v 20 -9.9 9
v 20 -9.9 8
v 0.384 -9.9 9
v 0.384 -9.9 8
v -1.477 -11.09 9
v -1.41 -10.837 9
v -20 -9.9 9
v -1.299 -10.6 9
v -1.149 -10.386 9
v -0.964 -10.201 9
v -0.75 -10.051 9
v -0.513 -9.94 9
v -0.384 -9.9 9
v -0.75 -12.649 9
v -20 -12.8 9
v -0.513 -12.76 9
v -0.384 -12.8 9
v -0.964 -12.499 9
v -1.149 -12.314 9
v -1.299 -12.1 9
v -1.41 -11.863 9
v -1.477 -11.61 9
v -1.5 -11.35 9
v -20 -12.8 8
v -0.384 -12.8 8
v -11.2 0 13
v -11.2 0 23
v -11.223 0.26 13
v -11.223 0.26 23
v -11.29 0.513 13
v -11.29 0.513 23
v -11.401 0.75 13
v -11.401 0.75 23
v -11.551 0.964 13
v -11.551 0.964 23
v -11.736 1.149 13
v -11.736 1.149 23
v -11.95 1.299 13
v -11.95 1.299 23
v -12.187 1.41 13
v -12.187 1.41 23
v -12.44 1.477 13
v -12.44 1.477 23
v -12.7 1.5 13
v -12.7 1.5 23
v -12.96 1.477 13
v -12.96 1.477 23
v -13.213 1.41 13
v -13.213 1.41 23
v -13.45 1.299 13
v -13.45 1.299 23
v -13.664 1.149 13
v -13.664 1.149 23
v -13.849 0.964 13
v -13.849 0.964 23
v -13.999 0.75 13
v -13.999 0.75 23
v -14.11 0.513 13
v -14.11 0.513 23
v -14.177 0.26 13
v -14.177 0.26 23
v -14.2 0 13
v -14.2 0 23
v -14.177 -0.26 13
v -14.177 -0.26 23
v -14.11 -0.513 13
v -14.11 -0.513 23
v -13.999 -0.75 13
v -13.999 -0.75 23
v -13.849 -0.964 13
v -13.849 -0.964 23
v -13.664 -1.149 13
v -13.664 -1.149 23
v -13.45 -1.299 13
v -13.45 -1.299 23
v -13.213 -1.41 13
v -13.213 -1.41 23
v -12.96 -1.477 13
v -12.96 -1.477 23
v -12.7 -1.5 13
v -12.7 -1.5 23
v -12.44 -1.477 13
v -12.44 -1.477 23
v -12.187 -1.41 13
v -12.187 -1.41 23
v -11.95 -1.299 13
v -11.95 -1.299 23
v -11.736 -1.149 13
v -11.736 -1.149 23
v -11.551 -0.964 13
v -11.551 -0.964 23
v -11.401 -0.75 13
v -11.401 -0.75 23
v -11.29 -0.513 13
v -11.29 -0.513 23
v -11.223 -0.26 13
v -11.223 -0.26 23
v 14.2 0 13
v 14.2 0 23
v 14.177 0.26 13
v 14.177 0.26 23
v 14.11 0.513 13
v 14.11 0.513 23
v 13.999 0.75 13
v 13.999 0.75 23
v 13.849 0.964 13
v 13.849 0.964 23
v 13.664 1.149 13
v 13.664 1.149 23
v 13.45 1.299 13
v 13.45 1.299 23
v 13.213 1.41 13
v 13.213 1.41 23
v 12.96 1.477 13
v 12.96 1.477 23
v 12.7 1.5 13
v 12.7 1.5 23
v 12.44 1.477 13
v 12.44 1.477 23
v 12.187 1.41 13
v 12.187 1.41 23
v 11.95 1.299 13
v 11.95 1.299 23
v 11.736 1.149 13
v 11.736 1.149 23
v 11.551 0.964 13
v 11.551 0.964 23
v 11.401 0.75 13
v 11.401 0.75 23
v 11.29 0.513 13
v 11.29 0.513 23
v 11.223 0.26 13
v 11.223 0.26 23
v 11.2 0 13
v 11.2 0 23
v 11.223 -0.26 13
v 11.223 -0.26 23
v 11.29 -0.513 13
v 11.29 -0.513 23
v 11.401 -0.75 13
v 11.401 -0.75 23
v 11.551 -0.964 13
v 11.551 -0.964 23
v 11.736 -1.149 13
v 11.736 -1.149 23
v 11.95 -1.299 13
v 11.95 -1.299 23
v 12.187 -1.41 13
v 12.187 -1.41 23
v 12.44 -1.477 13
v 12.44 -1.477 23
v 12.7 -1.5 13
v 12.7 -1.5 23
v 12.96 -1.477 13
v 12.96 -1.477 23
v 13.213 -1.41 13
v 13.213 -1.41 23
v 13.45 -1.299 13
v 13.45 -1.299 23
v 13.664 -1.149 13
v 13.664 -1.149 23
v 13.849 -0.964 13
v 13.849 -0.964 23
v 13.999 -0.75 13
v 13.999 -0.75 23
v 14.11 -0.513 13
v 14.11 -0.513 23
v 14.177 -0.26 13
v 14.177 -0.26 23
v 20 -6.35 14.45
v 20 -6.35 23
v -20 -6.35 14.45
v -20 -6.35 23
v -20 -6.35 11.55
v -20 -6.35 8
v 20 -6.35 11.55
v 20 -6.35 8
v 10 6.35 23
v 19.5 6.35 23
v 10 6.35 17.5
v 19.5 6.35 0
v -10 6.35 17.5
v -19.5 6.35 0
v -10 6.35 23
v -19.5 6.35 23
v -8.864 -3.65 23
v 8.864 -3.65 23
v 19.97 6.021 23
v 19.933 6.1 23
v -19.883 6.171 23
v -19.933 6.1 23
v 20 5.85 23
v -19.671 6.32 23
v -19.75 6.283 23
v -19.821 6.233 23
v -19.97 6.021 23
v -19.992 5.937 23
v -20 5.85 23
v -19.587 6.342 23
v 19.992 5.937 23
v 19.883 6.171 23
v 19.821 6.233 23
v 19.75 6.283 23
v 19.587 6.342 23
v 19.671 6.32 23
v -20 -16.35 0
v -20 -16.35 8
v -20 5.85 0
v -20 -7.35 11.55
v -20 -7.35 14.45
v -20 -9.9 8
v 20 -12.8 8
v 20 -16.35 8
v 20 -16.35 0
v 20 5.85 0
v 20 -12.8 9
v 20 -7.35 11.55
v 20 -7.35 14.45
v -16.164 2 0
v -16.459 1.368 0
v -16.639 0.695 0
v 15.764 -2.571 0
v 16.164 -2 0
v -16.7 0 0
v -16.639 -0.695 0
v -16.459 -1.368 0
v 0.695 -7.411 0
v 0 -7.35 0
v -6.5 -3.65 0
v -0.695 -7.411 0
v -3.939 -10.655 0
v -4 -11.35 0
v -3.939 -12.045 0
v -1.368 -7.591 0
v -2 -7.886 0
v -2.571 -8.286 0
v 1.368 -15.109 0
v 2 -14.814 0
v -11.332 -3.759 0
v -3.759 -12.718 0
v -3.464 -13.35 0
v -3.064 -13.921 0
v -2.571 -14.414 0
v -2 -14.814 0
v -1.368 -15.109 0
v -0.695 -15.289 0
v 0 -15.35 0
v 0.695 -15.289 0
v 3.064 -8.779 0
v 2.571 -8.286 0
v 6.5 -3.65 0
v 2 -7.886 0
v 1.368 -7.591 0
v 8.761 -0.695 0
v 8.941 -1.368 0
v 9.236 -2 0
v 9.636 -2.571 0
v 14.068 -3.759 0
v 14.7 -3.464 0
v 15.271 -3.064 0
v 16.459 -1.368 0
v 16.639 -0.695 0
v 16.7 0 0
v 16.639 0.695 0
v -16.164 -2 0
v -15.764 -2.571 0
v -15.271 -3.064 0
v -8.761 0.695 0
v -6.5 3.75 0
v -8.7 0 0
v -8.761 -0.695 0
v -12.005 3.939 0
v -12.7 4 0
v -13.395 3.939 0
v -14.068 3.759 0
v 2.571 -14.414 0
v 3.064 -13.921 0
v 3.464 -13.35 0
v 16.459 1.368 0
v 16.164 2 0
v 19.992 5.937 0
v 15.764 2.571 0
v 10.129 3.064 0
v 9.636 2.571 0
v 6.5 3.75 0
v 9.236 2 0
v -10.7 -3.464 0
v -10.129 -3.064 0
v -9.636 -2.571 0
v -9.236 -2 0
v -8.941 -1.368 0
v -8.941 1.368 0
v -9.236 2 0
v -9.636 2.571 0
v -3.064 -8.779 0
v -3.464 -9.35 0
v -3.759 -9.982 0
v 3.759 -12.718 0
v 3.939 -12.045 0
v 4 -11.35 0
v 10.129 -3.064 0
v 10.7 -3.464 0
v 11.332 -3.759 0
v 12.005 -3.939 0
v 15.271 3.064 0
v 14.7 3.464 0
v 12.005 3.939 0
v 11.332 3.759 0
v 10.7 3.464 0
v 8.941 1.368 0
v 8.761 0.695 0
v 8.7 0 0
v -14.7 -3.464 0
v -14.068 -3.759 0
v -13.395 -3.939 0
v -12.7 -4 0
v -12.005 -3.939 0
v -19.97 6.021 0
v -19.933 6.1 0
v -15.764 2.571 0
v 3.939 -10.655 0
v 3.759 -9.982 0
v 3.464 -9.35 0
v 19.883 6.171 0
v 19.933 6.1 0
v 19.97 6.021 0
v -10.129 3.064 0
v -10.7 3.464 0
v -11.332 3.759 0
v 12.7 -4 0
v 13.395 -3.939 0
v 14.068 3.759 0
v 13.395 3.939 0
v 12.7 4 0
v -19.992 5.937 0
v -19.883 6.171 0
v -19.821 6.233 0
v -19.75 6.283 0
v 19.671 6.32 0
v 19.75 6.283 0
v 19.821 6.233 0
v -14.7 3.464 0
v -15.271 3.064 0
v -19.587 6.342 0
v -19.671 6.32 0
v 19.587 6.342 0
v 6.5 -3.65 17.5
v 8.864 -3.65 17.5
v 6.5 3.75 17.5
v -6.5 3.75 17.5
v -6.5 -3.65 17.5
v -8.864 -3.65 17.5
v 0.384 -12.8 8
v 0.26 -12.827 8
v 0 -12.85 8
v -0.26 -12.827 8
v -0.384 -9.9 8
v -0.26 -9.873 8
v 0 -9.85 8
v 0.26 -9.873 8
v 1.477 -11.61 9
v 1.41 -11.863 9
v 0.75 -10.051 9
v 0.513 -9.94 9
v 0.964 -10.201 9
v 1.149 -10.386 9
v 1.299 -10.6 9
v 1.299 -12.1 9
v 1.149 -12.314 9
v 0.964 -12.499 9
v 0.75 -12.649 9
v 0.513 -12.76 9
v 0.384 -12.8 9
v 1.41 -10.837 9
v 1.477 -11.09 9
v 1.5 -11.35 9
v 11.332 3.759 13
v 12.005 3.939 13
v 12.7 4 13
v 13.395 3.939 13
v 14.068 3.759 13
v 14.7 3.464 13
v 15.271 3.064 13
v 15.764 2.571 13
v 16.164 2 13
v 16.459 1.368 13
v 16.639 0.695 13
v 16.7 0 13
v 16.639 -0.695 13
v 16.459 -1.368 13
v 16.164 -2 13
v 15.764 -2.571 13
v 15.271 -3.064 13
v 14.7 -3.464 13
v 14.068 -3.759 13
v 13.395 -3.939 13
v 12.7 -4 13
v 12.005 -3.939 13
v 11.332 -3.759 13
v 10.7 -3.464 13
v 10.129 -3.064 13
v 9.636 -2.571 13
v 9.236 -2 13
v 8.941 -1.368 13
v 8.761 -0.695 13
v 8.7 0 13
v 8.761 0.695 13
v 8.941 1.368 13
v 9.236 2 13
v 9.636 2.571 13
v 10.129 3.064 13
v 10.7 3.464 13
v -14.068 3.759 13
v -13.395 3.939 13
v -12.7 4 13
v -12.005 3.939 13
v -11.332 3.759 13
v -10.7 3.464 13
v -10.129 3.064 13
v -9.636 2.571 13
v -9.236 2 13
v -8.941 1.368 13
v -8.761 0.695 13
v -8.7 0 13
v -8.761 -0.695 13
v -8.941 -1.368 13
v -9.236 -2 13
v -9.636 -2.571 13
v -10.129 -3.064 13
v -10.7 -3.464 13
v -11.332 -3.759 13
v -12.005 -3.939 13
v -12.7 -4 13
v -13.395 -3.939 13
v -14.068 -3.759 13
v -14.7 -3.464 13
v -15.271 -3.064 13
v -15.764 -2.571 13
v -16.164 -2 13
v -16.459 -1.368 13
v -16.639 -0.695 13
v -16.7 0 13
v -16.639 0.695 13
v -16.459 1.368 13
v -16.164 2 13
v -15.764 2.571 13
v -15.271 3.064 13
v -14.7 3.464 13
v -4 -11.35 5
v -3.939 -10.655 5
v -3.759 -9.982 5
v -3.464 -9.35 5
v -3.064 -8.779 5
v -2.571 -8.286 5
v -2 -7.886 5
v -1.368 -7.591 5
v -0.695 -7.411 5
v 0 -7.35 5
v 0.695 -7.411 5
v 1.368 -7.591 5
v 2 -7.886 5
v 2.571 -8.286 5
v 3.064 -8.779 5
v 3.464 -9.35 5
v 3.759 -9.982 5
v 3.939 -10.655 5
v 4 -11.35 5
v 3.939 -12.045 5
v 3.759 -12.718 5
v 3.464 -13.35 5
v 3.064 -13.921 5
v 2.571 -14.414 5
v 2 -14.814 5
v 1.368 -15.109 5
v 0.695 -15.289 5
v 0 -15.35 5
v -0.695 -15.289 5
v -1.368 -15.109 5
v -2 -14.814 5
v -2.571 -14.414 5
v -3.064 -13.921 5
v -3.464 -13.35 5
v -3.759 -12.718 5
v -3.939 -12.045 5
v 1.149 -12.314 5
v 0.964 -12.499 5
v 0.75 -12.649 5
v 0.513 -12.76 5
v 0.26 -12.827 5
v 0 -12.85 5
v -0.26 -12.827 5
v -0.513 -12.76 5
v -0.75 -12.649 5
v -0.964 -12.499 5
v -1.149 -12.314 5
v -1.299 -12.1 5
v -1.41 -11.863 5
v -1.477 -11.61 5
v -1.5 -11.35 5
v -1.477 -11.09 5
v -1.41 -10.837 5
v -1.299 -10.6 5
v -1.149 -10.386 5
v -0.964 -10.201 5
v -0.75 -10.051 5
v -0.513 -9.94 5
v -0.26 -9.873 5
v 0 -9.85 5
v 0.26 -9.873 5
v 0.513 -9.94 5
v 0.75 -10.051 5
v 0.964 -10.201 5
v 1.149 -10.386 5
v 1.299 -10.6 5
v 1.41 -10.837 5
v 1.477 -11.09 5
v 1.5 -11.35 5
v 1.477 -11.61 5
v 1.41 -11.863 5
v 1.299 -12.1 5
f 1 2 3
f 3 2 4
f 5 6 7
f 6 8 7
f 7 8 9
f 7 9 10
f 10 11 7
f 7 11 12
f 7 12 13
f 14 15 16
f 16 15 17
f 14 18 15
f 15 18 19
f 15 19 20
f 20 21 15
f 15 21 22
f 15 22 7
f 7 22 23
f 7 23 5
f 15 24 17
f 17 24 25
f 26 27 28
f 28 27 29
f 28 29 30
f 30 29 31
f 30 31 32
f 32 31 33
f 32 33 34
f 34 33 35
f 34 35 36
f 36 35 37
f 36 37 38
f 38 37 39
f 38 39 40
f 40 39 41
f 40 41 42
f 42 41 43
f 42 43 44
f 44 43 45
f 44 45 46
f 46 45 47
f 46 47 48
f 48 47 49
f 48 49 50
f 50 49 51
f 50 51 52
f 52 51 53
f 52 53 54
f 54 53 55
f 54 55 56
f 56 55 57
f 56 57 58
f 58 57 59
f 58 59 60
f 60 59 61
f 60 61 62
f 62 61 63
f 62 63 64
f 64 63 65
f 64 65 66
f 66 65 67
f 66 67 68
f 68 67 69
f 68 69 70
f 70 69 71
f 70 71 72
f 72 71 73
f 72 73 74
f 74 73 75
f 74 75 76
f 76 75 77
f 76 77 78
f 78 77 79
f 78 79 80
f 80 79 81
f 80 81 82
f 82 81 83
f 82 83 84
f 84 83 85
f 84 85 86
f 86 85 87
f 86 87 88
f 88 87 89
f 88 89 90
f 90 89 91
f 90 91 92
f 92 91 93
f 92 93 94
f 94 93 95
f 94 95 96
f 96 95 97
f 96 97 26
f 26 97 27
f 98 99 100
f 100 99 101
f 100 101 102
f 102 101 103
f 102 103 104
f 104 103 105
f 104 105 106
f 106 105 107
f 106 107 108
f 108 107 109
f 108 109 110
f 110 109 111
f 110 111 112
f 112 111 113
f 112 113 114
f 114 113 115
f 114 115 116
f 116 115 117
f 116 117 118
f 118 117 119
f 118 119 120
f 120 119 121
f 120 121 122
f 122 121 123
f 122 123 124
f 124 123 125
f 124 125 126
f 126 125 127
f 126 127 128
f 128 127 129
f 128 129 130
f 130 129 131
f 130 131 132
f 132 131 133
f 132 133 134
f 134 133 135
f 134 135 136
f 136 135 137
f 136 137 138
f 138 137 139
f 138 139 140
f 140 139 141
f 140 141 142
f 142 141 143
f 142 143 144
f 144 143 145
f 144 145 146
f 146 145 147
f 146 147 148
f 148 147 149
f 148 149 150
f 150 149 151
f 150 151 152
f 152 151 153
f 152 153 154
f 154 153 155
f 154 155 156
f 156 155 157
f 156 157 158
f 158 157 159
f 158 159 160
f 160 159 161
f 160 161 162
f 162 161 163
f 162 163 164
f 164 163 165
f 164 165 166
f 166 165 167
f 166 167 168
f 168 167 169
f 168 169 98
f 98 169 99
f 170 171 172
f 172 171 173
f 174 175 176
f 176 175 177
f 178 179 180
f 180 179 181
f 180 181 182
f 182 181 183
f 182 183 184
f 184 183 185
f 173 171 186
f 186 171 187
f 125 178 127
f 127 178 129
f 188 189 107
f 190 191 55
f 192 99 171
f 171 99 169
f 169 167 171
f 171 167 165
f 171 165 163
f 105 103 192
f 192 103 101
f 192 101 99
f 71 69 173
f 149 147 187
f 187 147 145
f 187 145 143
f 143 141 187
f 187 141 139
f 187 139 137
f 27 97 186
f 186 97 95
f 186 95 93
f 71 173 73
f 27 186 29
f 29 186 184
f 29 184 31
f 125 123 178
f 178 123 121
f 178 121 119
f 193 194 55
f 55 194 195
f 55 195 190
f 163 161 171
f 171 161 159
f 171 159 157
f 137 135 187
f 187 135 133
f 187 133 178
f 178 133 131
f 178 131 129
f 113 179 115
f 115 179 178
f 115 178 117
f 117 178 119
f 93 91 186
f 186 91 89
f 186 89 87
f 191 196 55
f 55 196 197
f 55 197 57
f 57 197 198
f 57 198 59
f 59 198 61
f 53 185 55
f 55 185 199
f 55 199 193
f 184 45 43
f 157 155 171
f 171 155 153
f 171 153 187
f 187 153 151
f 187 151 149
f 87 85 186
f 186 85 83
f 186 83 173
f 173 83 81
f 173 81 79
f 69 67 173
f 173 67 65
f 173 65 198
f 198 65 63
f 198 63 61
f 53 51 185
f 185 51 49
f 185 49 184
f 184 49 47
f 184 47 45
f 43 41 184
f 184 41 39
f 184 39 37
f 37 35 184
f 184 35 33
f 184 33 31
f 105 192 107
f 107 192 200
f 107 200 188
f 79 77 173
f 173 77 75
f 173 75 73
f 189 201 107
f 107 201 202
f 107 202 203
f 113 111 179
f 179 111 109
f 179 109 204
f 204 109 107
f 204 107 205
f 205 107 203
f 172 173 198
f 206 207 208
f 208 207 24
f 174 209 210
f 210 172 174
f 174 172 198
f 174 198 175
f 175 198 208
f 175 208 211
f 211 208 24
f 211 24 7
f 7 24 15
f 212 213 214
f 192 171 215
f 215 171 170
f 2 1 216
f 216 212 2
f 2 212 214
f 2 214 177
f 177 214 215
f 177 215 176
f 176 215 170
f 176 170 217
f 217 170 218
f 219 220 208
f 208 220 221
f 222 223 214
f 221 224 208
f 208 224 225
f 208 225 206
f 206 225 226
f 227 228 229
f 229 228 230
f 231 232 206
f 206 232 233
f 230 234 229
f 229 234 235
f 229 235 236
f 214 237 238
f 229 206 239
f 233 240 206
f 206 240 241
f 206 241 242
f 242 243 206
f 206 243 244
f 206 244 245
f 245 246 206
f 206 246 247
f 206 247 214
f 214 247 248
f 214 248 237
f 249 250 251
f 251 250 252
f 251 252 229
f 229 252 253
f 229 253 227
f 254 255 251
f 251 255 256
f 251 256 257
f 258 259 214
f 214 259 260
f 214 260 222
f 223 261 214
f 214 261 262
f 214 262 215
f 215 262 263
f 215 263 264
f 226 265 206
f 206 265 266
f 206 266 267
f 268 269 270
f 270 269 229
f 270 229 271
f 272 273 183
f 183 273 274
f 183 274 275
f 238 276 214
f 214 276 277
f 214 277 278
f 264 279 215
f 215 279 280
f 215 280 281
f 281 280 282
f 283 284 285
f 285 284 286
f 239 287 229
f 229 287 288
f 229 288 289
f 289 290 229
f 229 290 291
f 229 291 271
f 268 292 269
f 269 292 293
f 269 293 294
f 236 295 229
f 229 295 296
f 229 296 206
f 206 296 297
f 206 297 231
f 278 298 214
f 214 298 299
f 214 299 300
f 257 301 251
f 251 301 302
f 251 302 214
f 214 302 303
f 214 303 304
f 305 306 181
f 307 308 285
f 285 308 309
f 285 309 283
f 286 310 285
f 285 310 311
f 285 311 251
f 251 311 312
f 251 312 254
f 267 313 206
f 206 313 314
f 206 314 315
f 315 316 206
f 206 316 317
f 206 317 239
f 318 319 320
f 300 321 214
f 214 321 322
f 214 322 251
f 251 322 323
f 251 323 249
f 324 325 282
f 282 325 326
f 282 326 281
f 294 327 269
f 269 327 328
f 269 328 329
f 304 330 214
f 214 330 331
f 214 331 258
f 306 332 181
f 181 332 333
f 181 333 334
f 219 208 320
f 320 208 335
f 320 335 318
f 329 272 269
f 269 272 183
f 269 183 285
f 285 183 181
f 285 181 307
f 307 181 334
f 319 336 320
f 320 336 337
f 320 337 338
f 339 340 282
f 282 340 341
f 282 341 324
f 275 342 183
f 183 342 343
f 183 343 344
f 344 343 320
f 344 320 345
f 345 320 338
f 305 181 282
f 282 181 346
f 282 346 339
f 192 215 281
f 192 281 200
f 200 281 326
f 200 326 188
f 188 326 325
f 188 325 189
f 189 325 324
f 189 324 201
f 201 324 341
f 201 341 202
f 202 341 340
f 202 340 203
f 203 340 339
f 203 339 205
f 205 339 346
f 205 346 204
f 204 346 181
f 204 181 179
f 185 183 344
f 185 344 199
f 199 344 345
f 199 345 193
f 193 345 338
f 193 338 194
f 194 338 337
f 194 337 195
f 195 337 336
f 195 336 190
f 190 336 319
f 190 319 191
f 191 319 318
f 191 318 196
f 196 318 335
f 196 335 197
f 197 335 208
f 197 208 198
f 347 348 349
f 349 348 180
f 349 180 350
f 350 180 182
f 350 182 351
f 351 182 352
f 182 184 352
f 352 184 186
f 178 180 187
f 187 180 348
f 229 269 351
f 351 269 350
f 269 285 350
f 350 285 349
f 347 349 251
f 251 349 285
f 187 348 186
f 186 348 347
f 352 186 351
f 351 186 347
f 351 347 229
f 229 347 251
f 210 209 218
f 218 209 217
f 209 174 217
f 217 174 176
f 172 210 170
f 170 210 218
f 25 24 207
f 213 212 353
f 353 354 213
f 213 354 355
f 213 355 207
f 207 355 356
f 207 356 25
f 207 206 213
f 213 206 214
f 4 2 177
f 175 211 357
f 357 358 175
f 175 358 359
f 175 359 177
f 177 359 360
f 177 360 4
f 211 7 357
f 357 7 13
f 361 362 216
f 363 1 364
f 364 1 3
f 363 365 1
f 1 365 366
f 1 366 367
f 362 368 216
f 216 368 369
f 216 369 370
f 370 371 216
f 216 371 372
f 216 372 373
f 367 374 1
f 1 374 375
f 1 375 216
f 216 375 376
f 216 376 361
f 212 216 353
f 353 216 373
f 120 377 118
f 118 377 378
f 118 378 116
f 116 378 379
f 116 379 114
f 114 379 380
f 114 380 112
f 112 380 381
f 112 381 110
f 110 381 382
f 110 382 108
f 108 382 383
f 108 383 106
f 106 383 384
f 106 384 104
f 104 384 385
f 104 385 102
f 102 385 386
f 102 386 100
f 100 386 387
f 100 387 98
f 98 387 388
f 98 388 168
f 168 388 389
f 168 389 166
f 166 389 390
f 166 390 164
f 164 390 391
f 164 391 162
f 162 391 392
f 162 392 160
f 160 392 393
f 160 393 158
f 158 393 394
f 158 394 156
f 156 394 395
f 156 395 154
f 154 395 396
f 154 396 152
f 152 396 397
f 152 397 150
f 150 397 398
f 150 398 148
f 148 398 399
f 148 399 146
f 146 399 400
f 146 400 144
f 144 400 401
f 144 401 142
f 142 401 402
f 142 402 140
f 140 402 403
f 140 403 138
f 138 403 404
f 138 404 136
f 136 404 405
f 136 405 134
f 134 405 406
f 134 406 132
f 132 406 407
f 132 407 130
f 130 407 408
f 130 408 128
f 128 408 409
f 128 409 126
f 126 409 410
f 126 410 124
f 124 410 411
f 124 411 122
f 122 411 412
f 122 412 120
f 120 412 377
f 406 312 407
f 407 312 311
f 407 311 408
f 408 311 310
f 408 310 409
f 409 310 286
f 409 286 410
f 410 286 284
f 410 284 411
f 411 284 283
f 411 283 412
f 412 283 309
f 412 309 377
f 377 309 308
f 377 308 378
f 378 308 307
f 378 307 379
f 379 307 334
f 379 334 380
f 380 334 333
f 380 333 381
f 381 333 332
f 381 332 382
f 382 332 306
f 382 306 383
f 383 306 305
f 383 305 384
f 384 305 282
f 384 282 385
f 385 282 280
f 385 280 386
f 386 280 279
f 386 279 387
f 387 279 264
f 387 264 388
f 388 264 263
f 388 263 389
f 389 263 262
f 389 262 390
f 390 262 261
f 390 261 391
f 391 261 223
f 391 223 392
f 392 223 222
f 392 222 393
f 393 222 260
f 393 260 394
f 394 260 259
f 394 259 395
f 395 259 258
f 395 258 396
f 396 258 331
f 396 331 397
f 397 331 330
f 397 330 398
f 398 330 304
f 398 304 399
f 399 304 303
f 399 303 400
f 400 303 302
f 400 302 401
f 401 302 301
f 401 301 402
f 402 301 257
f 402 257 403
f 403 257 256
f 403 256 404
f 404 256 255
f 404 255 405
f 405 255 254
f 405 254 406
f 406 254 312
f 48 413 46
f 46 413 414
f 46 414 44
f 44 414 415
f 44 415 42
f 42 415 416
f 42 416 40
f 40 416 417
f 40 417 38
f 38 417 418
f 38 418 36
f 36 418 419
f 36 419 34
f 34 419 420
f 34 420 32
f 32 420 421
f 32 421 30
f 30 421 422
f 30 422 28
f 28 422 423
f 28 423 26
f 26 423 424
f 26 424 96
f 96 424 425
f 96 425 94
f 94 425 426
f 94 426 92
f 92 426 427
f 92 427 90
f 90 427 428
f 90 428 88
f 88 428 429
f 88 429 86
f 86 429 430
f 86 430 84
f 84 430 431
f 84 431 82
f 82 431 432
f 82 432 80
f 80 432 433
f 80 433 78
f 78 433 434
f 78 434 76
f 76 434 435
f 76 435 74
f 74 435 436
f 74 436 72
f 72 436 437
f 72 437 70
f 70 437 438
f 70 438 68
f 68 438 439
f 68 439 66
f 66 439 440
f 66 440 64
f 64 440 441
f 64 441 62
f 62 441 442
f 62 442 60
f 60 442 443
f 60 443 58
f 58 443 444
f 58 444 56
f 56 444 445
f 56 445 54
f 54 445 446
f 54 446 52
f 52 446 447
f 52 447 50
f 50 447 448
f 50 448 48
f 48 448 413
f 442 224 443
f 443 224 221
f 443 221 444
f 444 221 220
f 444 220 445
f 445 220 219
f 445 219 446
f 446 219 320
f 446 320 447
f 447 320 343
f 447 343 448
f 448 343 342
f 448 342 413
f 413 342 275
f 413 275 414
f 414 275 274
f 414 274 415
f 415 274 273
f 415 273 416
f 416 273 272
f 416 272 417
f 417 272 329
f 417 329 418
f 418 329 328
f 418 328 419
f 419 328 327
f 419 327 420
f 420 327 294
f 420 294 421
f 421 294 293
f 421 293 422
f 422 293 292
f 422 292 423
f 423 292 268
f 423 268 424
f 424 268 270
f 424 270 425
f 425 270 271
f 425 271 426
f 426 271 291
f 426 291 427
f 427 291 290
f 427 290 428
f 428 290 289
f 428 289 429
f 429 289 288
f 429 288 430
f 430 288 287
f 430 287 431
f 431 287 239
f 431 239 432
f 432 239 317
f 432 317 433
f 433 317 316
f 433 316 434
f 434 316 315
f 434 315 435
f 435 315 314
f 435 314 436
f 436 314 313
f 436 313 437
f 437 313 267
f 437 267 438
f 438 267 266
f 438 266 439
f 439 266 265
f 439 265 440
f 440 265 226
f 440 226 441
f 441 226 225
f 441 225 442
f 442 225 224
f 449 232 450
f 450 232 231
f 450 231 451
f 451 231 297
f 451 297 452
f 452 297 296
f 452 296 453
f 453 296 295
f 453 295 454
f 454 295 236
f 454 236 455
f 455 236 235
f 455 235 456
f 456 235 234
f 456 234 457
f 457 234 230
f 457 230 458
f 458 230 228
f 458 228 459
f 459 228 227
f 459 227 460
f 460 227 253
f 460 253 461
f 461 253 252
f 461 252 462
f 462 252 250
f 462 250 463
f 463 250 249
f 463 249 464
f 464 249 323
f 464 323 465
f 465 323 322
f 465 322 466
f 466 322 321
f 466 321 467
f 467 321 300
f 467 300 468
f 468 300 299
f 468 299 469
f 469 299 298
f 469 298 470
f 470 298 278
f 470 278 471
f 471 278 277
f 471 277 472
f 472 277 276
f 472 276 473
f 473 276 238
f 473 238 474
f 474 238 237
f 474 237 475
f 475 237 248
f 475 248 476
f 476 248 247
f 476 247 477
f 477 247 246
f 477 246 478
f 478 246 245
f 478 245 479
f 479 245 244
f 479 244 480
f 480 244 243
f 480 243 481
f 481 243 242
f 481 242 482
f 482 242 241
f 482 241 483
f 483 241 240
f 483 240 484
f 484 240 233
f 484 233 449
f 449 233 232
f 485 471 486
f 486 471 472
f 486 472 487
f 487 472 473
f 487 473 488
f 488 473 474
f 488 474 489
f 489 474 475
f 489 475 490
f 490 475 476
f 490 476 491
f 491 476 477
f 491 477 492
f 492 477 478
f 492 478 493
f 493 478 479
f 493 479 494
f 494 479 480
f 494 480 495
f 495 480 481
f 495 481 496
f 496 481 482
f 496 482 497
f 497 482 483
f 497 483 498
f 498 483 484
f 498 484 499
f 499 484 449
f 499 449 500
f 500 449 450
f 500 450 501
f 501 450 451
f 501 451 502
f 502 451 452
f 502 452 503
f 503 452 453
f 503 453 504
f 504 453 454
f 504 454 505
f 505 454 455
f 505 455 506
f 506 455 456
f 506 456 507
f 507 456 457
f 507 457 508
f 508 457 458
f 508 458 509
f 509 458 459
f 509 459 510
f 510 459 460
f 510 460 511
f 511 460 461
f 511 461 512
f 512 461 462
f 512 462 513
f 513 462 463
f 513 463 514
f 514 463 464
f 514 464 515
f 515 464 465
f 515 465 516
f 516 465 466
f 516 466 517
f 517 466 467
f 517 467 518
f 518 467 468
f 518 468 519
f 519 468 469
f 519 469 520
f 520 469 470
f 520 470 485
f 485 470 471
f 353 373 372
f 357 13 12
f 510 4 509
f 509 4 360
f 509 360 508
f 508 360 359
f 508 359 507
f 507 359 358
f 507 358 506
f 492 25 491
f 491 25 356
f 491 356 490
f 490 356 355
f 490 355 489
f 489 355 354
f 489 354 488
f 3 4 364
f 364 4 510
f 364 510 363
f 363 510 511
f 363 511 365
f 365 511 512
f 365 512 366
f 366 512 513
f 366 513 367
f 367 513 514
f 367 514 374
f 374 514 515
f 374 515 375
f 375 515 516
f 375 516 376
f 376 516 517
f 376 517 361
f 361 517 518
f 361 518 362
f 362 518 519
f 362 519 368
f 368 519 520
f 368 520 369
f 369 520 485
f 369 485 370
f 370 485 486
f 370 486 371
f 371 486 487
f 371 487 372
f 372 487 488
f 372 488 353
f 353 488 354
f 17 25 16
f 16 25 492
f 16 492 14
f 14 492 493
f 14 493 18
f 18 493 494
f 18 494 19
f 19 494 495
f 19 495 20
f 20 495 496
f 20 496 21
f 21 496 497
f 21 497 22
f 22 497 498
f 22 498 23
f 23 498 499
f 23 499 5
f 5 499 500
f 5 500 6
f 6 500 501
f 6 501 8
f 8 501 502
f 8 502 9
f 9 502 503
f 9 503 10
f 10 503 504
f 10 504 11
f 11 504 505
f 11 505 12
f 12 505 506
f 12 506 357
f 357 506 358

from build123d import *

# Parameters (mm, degrees)
ESQUISSE1_W              = 40
ESQUISSE1_H              = 12.7
BOSS_EXTRU_1_DEPTH       = 23
CONG_1_R                 = 0.5
ESQUISSE2_R              = 1.5
ENL_V_MAT_EXTRU_1_DEPTH  = 24
ENL_V_MAT_EXTRU_2_DEPTH  = 5.5
ESQUISSE5_W              = 13
ESQUISSE5_H              = 8
ENL_V_MAT_EXTRU_3_DEPTH  = 18.5
BOSS_EXTRU_8_DEPTH       = 40
ESQUISSE16_R             = 4
ENL_V_MAT_EXTRU_10_DEPTH = 13
ESQUISSE18_R             = 4
ENL_V_MAT_EXTRU_11_DEPTH = 5
ESQUISSE19_R             = 1.5
ENL_V_MAT_EXTRU_12_DEPTH = 19


with BuildPart() as part:
    # Esquisse1 → Boss.-Extru.1 (new body)
    with BuildSketch(Plane.XY):
        Rectangle(ESQUISSE1_W, ESQUISSE1_H)
    extrude(amount=BOSS_EXTRU_1_DEPTH)

    # Congé1
    cong_1_edges = [part.edges().sort_by_distance(p)[0] for p in [
        (-20, 6.35, 11.5),
        (20, 6.35, 11.5),
    ]]
    fillet(cong_1_edges, radius=CONG_1_R)

    # Esquisse2 → Enlèv. mat.-Extru.1 (cut, through all)
    with BuildSketch(Plane.XY.offset(23)):
        with Locations((-12.7, 0)):
            Circle(ESQUISSE2_R)
        with Locations((12.7, 0)):
            Circle(ESQUISSE2_R)
    extrude(amount=-ENL_V_MAT_EXTRU_1_DEPTH, mode=Mode.SUBTRACT)

    # Esquisse4 → Enlèv. mat.-Extru.2 (cut)
    with BuildSketch(Plane(origin=(0, 0, 23), x_dir=(-1, 0, 0), z_dir=(0, 0, -1))):
        Polygon((-10, 6.35), (10, 6.35), (8.5, -6.85), (-8.5, -6.85), align=None)
    extrude(amount=ENL_V_MAT_EXTRU_2_DEPTH, mode=Mode.SUBTRACT)

    # Esquisse5 → Enlèv. mat.-Extru.3 (cut, through all)
    with BuildSketch(Plane.XY.offset(17.5)):
        with Locations((0, -0.25)):
            Rectangle(ESQUISSE5_W, ESQUISSE5_H)
    extrude(amount=-ENL_V_MAT_EXTRU_3_DEPTH, mode=Mode.SUBTRACT)

    # Esquisse17 → Boss.-Extru.8 (add)
    with BuildSketch(Plane.ZY.offset(20)):
        Polygon((8, -16.35), (0, -16.35), (0, -3.65), (23, -3.65), (23, -6.35), (14.45, -6.35), (14.45, -7.35), (11.55, -7.35), (11.55, -6.35), (8, -6.35), (8, -9.9), (9, -9.9), (9, -12.8), (8, -12.8), align=None)
    extrude(amount=-BOSS_EXTRU_8_DEPTH)

    # Esquisse16 → Enlèv. mat.-Extru.10 (cut)
    with BuildSketch(Plane(origin=(0, 0, 0), x_dir=(-1, 0, 0), z_dir=(0, 0, -1))):
        with Locations((-12.7, 0)):
            Circle(ESQUISSE16_R)
        with Locations((12.7, 0)):
            Circle(ESQUISSE16_R)
    extrude(amount=-ENL_V_MAT_EXTRU_10_DEPTH, mode=Mode.SUBTRACT)

    # Esquisse18 → Enlèv. mat.-Extru.11 (cut)
    with BuildSketch(Plane(origin=(0, 0, 0), x_dir=(-1, 0, 0), z_dir=(0, 0, -1))):
        with Locations((0, -11.35)):
            Circle(ESQUISSE18_R)
    extrude(amount=-ENL_V_MAT_EXTRU_11_DEPTH, mode=Mode.SUBTRACT)

    # Esquisse19 → Enlèv. mat.-Extru.12 (cut, through all)
    with BuildSketch(Plane(origin=(0, 0, 5), x_dir=(-1, 0, 0), z_dir=(0, 0, -1))):
        with Locations((0, -11.35)):
            Circle(ESQUISSE19_R)
    extrude(amount=-ENL_V_MAT_EXTRU_12_DEPTH, mode=Mode.SUBTRACT)


solid = part.part
